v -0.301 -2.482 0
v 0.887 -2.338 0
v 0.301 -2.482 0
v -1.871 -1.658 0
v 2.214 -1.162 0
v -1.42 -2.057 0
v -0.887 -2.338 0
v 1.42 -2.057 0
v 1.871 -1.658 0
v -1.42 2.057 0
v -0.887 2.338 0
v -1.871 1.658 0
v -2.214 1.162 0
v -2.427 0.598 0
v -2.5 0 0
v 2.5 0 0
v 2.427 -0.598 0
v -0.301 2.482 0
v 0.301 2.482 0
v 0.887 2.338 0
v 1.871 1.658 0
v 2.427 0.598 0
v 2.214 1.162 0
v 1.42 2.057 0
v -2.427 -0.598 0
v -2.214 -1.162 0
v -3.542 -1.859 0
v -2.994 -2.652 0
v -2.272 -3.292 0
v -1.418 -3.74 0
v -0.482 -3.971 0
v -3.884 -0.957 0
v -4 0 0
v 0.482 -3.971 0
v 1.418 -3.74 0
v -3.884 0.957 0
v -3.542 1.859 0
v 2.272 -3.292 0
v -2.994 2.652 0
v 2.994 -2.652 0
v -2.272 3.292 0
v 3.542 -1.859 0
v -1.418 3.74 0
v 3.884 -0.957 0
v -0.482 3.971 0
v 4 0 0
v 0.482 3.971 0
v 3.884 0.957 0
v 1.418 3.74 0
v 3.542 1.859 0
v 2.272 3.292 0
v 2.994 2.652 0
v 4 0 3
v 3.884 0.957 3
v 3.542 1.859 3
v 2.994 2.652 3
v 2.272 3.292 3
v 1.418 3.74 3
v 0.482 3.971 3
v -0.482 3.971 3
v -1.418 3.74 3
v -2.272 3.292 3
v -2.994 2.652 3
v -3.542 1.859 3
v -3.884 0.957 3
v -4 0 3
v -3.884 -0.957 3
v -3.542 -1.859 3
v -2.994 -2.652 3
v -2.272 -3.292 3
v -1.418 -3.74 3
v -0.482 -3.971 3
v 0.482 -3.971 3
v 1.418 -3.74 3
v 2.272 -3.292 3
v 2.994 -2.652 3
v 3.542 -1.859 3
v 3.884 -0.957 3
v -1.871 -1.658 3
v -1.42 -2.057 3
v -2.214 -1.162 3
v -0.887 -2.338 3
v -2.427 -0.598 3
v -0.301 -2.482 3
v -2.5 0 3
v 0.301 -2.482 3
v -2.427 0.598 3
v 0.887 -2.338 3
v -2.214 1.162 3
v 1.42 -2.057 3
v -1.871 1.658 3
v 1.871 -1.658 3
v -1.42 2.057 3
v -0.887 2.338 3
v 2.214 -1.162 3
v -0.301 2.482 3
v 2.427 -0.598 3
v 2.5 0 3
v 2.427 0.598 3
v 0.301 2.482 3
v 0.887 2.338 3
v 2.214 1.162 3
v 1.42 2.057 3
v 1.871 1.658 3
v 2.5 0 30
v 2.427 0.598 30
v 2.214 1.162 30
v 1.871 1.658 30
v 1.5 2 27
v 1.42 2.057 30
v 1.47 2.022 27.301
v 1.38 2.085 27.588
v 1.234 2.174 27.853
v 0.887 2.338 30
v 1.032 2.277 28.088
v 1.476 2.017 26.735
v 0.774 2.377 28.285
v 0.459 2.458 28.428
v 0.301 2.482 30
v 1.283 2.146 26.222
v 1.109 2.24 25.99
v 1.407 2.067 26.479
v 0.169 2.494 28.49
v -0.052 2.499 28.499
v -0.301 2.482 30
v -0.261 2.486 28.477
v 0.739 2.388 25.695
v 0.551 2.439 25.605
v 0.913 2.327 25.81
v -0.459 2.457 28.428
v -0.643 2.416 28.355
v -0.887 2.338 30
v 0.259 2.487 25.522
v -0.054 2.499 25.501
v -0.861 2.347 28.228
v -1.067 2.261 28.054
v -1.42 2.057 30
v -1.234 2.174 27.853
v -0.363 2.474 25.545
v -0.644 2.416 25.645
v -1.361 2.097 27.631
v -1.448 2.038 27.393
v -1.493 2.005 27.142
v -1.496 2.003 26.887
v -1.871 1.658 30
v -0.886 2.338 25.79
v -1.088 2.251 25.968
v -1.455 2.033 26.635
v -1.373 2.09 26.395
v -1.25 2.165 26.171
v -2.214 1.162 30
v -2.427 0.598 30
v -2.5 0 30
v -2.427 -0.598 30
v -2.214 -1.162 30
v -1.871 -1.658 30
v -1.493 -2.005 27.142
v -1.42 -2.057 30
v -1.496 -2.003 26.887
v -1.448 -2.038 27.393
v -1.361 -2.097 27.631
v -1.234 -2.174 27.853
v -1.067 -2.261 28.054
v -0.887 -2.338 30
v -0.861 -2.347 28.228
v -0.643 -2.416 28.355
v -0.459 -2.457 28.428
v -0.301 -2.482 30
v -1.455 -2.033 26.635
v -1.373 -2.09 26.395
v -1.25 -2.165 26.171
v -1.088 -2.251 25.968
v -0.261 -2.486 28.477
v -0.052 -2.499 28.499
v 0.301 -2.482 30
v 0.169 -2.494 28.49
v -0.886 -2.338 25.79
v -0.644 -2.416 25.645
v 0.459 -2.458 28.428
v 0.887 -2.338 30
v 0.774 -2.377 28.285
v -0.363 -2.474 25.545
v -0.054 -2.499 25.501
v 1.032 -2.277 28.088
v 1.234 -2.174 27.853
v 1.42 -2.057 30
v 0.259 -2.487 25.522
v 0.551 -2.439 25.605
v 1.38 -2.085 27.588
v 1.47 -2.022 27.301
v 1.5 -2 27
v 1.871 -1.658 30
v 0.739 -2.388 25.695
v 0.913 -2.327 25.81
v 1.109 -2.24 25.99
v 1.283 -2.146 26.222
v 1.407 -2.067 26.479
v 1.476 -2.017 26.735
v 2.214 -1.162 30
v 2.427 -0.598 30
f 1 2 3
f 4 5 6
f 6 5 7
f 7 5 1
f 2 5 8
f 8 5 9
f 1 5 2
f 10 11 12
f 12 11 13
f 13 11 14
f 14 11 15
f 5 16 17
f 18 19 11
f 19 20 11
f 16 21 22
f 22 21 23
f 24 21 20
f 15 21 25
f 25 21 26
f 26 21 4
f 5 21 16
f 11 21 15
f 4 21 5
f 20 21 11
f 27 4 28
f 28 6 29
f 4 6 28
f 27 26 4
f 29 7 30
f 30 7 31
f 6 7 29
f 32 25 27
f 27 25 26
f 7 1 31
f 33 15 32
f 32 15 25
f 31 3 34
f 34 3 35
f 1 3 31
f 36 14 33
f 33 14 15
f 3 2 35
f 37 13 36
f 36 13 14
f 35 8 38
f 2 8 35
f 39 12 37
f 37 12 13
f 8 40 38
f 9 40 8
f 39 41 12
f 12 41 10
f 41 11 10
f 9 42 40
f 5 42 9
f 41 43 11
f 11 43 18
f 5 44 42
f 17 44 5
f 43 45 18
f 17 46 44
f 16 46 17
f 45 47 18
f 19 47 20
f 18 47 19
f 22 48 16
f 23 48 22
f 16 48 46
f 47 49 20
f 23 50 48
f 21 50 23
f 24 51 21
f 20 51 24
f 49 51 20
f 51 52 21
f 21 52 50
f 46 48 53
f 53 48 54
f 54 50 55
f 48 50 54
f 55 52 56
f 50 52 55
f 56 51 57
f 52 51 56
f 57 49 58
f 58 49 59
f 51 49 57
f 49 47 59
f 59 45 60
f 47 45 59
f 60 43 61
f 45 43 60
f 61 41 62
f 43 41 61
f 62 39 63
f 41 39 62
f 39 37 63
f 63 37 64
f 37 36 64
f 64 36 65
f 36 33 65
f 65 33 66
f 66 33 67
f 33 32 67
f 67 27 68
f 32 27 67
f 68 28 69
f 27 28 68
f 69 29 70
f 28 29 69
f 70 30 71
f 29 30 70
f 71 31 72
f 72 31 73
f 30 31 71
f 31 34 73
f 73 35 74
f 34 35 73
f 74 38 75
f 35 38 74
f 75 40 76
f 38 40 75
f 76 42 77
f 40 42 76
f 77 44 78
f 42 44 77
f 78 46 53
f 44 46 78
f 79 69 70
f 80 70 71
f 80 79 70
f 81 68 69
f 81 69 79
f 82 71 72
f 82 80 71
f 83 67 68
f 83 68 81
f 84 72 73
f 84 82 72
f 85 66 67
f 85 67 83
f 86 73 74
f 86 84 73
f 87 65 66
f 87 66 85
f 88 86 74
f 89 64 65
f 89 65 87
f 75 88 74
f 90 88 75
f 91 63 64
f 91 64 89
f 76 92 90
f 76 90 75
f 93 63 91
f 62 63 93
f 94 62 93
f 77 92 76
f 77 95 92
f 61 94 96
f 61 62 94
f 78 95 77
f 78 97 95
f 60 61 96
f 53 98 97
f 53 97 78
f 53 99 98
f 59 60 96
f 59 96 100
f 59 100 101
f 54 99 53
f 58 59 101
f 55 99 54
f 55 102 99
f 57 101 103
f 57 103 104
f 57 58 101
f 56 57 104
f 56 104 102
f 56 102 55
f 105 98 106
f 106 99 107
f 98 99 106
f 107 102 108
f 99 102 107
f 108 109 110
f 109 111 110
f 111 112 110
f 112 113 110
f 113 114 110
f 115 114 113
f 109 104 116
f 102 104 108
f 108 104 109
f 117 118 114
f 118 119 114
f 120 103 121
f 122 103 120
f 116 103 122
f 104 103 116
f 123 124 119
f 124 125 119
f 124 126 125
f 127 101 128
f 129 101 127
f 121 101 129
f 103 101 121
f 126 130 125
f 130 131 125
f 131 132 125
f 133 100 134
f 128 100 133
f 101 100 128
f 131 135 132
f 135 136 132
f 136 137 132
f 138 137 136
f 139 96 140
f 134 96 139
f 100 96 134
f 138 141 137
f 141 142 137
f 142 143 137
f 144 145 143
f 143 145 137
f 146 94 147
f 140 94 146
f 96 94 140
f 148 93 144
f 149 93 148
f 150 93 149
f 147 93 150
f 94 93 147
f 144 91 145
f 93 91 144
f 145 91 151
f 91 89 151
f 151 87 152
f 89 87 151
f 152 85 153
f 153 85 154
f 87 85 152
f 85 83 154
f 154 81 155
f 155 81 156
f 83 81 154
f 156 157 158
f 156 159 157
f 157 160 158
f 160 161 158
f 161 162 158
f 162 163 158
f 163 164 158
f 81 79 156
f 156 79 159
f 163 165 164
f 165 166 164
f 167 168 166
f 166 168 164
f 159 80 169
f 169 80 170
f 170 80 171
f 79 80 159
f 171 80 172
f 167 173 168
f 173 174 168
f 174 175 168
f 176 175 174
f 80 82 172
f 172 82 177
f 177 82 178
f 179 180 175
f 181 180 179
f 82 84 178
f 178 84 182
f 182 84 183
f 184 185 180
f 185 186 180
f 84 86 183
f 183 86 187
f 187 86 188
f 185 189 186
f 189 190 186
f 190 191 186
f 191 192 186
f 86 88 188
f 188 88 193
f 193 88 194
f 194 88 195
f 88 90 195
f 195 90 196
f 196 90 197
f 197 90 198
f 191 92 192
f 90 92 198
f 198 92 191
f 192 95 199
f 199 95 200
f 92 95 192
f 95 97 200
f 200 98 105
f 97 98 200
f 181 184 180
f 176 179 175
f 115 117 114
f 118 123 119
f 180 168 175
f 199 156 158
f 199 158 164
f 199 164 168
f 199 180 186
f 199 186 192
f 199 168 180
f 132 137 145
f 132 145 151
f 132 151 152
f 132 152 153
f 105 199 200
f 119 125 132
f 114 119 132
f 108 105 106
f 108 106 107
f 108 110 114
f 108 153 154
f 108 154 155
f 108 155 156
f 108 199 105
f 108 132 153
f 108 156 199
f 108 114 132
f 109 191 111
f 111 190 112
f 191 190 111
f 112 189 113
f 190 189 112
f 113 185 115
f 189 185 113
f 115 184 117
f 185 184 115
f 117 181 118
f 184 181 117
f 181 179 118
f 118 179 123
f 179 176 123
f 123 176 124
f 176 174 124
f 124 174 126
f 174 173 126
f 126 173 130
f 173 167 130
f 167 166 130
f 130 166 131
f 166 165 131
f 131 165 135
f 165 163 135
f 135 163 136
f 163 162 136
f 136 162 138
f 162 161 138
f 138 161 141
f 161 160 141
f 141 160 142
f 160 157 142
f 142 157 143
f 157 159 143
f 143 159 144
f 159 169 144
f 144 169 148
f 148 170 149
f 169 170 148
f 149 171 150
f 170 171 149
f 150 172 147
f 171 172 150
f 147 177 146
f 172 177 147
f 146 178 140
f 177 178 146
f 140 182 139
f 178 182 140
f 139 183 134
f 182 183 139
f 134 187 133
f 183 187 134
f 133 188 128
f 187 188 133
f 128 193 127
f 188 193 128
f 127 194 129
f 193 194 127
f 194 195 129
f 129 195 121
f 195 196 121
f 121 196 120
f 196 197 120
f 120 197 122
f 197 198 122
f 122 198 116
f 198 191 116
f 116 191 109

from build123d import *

# Parameters (mm, degrees)
SKETCH_R          = 2.5
PAD_DEPTH         = 30
SKETCH001_R       = 4
PAD001_DEPTH      = 3
SKETCH002_R       = 1.5
POCKET_DEPTH      = 4.001
POCKET_DEPTH_BACK = -4.001


with BuildPart() as part:
    # Sketch → Pad (new body)
    with BuildSketch(Plane.XY):
        Circle(SKETCH_R)
    extrude(amount=PAD_DEPTH)

    # Sketch001 → Pad001 (join)
    with BuildSketch(Plane.XY):
        Circle(SKETCH001_R)
    extrude(amount=PAD001_DEPTH)

    # Sketch002 → Pocket (cut, two sides)
    with BuildSketch(Plane.XZ) as pocket_sk:
        with Locations((0, 27)):
            Circle(SKETCH002_R)
    extrude(amount=-POCKET_DEPTH, mode=Mode.SUBTRACT)
    extrude(pocket_sk.sketch, amount=-POCKET_DEPTH_BACK, mode=Mode.SUBTRACT)


solid = part.part
